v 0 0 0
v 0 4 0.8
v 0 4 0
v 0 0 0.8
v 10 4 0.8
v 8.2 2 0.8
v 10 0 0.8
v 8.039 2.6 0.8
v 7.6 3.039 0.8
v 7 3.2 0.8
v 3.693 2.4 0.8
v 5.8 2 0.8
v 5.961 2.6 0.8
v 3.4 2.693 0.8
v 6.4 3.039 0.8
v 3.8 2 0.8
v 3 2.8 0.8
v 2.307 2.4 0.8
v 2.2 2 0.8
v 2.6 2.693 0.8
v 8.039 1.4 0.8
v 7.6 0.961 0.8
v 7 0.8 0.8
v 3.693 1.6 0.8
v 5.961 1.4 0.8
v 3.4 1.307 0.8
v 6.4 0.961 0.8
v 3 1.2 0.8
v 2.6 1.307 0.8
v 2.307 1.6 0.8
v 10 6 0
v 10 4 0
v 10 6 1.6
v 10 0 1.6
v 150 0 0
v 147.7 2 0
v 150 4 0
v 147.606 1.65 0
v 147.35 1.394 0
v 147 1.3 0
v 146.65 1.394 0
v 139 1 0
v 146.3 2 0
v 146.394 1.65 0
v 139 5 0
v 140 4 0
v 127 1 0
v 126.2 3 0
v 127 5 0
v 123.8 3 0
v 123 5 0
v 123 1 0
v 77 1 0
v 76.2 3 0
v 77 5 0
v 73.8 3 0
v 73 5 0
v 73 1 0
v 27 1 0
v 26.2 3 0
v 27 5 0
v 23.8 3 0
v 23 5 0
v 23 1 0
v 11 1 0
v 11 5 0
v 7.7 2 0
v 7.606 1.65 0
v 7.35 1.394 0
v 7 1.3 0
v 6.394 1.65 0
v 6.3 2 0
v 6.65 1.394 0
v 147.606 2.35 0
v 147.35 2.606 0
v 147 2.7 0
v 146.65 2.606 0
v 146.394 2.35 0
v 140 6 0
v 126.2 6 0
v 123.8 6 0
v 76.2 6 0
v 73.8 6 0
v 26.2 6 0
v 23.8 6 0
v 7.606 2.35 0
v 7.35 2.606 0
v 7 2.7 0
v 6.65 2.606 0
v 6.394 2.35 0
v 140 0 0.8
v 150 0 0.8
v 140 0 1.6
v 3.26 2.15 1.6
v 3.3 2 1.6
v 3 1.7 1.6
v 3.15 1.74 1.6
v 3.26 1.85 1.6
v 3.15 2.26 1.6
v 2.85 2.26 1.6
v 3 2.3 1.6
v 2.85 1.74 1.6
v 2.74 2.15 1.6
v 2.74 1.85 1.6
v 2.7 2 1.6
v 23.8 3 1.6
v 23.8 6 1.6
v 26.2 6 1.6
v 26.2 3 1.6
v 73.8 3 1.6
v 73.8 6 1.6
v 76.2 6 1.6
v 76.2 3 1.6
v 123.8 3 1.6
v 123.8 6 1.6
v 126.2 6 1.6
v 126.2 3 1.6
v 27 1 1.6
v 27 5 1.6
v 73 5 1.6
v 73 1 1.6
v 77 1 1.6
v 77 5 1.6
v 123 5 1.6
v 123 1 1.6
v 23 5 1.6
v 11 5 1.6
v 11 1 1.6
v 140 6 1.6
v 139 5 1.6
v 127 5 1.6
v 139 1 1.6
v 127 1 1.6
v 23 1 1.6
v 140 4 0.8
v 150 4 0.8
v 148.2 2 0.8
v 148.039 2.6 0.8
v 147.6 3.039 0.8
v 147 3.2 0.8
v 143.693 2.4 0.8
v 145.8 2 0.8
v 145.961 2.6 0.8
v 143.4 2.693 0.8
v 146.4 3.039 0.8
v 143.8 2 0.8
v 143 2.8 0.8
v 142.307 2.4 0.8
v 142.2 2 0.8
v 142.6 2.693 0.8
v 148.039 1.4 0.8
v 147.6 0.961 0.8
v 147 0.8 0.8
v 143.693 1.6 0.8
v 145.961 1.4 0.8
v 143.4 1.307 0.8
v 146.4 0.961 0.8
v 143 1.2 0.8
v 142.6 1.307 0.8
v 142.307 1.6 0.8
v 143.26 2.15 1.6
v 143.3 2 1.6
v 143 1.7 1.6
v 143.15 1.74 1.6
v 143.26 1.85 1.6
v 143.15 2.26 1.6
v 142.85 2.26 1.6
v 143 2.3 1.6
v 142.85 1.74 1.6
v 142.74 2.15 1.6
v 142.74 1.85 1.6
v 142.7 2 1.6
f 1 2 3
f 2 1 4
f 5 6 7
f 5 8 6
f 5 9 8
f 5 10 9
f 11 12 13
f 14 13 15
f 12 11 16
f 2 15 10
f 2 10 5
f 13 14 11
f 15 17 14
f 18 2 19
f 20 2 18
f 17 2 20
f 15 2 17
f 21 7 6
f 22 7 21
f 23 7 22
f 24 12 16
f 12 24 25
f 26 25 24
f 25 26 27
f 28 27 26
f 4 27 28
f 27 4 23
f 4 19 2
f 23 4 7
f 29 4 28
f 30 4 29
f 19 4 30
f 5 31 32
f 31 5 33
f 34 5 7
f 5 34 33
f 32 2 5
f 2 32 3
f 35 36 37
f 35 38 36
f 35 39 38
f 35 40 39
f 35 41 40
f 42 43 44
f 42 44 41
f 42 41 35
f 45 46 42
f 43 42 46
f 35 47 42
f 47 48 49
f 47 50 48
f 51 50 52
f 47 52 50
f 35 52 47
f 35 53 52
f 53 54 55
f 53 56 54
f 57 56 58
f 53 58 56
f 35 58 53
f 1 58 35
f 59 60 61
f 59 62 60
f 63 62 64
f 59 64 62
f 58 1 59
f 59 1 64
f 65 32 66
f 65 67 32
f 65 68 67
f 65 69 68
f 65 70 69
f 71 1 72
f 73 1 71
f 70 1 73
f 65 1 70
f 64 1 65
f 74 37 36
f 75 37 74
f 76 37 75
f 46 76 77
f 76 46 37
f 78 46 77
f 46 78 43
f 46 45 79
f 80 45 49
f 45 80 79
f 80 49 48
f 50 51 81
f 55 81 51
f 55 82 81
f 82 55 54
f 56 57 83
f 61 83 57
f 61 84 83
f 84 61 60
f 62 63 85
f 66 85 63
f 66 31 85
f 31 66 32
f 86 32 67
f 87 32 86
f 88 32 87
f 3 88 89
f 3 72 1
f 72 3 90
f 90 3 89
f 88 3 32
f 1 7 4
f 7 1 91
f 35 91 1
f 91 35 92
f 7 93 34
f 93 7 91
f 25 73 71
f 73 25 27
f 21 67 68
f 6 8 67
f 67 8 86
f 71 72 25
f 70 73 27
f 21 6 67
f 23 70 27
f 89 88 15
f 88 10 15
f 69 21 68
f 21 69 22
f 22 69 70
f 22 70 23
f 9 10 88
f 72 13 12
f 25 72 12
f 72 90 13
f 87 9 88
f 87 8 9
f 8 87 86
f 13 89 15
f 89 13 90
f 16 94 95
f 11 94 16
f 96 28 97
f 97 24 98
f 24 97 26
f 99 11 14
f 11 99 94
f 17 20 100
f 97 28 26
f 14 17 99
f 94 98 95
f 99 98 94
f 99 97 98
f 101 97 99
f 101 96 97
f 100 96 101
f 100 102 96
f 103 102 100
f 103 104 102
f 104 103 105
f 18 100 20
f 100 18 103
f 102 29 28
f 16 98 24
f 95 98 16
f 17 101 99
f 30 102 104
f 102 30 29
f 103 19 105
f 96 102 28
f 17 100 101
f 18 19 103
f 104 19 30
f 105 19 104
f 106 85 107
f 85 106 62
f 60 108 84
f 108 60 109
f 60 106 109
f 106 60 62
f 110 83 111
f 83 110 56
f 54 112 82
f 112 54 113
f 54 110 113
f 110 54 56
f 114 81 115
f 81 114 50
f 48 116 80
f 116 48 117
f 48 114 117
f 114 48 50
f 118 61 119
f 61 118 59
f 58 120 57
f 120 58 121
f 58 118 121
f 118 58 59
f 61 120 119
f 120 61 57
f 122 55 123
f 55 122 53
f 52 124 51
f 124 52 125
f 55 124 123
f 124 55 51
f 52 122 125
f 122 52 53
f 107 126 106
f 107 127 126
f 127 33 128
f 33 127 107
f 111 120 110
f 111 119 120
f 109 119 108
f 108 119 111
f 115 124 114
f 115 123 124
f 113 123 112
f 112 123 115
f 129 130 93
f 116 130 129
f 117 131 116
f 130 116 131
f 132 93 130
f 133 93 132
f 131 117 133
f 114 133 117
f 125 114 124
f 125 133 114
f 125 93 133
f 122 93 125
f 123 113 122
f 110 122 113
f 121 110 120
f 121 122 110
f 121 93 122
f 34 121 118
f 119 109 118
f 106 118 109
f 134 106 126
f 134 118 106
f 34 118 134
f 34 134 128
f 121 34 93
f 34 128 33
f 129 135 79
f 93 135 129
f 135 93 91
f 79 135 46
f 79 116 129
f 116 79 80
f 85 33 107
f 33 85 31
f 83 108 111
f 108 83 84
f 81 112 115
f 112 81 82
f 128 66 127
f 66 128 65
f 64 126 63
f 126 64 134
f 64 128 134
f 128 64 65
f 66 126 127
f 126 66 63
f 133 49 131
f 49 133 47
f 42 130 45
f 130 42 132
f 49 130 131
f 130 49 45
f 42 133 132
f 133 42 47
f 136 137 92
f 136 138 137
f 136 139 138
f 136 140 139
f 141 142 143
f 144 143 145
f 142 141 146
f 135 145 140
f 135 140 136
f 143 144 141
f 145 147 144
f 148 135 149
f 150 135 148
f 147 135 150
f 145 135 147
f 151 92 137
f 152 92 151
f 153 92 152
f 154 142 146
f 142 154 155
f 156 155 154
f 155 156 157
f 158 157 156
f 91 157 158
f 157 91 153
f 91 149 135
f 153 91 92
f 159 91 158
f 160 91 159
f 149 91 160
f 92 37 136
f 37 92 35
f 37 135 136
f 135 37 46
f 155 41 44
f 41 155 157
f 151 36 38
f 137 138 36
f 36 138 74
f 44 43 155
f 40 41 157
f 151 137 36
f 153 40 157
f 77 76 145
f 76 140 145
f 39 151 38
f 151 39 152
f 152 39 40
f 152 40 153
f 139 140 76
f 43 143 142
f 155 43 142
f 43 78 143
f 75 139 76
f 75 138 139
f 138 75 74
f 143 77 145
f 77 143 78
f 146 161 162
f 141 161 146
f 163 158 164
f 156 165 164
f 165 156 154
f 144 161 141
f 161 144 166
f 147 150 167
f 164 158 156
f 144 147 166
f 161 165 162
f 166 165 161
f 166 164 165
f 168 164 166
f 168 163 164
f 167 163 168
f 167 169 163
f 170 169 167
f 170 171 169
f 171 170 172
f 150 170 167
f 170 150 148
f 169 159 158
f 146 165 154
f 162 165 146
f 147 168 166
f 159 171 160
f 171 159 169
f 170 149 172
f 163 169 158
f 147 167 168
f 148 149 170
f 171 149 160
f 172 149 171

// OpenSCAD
length 	= 150; // 50, 100, 150, 200
step 	= 50; //don't change
difference(){
	translate([10,0,0])
		cube([length-20,6,1.6]);

	for (i = [0:step:(length-step)]) {
		translate([i,0,0]){
			translate([23.8,3,0])
				cube([2.4,4,2]);
		} //translate i
	} //for i

	for (i = [0:step:(length-step*2+1)]) {
		translate([i,0,0]){
			translate([27,1,0])
				cube([step-4,4,2]);				
		} //translate i
	} //for i

	translate([11,1,0])
			cube([12,4,2]);

	translate([length-23,1,0])
			cube([12,4,2]);
} //difference

for (i = [0:1]){
translate([(length-10)*i,0,0])
{	
	translate([3,2,0.8])
		cylinder(0.8,0.8,0.3, $fn=12);
	difference(){
		cube([10,4,0.8]);
		translate([7,2,0])
		cylinder(0.8,0.7,1.2, $fn=12);
	}
}
}// for i
